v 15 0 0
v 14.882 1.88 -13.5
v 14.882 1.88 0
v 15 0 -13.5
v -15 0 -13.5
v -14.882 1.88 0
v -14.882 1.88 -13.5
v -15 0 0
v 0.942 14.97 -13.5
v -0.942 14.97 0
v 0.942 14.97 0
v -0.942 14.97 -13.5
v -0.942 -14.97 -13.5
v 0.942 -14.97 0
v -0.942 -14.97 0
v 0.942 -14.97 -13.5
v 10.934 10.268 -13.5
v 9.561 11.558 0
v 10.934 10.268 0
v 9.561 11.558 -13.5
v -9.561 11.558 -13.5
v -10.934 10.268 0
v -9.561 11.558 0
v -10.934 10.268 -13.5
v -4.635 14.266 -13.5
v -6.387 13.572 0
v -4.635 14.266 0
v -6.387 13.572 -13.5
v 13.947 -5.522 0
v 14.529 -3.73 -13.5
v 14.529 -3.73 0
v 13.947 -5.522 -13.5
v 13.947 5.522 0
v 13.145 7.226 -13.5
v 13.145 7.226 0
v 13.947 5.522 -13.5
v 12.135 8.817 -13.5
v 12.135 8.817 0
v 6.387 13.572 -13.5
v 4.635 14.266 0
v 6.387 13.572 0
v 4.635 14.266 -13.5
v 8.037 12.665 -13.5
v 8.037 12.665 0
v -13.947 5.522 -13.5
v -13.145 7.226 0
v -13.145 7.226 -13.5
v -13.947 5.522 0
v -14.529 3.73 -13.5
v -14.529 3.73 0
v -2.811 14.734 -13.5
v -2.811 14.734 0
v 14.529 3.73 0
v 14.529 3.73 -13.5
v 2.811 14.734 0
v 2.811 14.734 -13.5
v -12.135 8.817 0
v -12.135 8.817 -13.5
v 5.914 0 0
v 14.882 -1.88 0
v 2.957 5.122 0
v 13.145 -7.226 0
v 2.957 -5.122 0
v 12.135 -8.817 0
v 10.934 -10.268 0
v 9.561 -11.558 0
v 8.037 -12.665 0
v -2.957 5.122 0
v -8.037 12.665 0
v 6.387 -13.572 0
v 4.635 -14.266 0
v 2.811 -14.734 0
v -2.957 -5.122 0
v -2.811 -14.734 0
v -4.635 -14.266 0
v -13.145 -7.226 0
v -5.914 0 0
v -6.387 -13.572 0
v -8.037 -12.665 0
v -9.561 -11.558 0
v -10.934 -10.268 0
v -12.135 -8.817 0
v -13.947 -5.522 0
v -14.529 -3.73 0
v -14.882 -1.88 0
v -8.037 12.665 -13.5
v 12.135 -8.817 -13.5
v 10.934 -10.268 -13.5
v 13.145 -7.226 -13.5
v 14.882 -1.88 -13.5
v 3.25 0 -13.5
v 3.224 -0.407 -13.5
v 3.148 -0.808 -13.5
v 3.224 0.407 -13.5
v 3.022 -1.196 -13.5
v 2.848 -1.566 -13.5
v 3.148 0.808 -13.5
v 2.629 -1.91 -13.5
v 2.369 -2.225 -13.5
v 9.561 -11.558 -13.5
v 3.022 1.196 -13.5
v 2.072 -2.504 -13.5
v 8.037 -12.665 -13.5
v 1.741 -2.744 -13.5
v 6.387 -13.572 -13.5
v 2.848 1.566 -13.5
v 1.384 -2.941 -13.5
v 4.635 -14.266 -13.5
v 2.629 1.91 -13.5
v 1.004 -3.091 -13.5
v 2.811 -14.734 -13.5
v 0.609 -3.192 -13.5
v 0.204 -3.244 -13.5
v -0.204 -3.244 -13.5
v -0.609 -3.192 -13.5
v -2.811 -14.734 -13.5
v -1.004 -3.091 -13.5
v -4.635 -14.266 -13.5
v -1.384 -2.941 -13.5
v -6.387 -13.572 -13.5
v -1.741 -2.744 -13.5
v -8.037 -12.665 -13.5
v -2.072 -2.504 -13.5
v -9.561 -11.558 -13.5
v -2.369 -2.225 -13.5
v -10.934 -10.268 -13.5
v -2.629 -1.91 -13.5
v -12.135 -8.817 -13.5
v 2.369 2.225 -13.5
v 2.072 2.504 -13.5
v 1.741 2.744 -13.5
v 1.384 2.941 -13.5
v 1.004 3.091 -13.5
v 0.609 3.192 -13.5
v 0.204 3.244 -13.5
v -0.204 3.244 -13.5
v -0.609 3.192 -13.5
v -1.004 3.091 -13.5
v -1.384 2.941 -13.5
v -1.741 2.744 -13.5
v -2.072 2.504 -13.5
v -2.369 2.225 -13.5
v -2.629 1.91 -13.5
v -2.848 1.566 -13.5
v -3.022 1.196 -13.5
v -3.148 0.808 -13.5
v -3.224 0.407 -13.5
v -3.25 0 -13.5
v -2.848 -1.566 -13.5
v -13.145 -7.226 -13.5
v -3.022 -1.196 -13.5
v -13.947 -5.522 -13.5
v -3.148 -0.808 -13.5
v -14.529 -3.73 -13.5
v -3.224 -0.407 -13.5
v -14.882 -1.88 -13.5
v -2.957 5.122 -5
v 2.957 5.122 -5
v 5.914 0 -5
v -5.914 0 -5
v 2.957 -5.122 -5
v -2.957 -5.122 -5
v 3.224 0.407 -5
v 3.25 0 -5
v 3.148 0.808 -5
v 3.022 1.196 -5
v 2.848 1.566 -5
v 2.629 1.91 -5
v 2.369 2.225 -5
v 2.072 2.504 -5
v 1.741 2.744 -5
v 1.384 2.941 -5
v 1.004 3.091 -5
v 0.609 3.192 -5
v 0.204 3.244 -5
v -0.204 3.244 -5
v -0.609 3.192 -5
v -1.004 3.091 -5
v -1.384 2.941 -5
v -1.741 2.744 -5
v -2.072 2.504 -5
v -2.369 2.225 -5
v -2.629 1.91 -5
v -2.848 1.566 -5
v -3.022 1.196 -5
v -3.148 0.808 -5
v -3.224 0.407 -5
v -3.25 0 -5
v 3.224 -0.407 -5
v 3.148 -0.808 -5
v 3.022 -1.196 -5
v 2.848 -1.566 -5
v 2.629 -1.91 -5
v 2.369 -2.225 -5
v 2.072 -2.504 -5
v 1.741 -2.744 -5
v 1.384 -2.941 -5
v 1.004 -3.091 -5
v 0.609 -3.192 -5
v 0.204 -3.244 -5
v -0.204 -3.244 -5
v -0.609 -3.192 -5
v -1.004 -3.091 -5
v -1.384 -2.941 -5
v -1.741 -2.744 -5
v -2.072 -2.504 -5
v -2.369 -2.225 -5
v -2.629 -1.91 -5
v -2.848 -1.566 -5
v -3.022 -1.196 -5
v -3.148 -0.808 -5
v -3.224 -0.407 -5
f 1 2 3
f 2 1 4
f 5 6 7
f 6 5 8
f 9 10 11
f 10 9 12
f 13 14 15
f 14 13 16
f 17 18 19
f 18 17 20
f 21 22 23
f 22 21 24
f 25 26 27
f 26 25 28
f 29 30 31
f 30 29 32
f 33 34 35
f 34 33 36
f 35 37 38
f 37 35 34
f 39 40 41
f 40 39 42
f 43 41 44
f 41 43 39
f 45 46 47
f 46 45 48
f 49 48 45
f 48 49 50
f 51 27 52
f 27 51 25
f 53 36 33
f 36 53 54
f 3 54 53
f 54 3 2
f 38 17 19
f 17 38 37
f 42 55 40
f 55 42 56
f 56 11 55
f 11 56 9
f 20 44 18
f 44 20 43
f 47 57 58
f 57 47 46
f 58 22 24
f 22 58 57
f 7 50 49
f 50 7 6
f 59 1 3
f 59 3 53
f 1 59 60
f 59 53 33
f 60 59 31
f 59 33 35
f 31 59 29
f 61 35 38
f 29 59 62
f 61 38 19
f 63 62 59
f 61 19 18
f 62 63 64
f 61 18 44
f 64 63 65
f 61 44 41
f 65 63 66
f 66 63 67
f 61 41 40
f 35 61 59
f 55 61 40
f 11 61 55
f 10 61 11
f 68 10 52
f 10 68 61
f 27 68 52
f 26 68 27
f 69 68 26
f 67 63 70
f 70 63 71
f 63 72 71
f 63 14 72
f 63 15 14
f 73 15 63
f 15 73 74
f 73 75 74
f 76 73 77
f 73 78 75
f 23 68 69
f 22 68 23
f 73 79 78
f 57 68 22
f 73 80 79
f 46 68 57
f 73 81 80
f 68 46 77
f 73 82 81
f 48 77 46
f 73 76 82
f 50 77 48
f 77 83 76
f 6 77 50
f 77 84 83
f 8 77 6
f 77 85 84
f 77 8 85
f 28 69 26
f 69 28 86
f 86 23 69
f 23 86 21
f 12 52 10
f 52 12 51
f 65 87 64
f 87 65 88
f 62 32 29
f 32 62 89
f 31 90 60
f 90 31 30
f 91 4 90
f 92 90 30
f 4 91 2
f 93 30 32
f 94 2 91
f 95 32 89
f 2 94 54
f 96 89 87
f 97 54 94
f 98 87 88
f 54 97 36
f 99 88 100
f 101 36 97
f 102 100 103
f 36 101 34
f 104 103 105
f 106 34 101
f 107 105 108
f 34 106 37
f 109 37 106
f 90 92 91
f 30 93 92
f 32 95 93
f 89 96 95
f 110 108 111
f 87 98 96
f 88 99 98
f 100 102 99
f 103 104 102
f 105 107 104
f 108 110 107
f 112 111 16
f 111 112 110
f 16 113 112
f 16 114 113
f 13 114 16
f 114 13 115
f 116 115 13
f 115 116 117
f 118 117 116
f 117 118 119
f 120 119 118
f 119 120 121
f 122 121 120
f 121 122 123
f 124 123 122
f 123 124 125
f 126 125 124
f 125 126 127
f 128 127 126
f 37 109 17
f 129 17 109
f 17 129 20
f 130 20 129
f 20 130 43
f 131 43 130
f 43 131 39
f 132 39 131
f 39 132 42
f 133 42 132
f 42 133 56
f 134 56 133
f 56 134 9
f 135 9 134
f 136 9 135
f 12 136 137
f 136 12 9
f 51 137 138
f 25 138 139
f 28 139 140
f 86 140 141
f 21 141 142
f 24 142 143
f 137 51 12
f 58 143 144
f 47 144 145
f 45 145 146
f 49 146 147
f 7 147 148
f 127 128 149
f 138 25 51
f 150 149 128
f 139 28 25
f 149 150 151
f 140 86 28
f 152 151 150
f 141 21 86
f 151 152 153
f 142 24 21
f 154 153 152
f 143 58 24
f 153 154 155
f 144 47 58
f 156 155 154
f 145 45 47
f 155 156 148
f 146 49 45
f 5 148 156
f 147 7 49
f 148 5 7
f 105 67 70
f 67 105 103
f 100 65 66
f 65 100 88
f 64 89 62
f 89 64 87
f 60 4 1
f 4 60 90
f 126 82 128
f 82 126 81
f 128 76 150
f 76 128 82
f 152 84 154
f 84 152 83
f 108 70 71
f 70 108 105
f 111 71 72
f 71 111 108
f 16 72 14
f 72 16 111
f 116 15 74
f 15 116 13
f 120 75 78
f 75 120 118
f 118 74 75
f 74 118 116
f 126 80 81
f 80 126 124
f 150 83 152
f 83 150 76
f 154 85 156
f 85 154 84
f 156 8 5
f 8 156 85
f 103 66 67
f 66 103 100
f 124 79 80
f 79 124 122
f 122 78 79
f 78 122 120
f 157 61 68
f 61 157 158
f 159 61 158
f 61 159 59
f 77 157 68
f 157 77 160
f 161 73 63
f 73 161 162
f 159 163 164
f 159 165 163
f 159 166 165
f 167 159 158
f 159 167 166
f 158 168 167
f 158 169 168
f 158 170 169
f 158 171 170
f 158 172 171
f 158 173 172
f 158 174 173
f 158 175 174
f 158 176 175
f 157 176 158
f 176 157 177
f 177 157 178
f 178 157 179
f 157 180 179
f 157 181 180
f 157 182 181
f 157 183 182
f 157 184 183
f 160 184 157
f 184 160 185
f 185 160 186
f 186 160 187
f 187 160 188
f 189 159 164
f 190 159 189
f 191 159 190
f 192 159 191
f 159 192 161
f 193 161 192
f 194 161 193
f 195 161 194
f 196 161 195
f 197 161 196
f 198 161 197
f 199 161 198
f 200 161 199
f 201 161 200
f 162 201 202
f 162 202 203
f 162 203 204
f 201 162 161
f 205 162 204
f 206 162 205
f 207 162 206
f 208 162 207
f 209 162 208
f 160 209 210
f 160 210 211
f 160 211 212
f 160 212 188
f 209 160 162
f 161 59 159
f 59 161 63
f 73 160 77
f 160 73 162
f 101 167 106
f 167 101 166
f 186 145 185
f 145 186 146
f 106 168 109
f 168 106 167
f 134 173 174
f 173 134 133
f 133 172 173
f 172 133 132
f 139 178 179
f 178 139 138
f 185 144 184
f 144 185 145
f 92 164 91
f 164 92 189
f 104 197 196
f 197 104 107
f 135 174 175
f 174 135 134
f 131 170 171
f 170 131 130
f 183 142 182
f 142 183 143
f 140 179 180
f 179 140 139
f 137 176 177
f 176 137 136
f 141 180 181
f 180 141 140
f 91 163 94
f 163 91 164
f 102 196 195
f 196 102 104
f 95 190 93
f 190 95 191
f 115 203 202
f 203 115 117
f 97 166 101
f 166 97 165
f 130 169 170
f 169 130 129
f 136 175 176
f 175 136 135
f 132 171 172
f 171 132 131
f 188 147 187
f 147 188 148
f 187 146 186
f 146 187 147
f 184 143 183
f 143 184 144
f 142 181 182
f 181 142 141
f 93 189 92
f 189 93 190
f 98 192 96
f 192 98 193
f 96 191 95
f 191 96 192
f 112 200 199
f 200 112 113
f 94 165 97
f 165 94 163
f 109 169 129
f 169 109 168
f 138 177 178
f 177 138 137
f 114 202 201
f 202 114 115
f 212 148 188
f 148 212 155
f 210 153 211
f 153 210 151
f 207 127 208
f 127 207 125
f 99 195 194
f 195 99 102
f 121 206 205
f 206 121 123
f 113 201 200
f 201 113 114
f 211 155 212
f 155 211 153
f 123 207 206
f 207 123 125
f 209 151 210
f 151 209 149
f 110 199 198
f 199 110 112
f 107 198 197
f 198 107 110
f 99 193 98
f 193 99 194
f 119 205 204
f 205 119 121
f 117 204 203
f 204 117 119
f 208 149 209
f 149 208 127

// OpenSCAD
$fn = 50;

difference() {
	union() {
		translate(v = [0, 0, -13.5]) {
			cylinder(h = 13.5, r = 15.0);
		}
		#translate(v = [0, 0, -15.0]) {
			cylinder(h = 15, r = 2.875);
		}
	}
	union() {
		translate(v = [0, 0, 0]) {
			rotate(a = [0, 0, 0]) {
				difference() {
					union() {
						translate(v = [0, 0, -5]) {
							linear_extrude(height = 5) {
								polygon(points = [[5.914249999999999, 0.0], [2.957125, 5.1218907443321156], [-2.9571249999999982, 5.1218907443321156], [-5.914249999999999, 7.242867331857232e-16], [-2.9571250000000022, -5.121890744332115], [2.9571249999999956, -5.121890744332118]]);
							}
						}
					}
					union();
				}
			}
		}
		#translate(v = [0, 0, -100.0]) {
			cylinder(h = 200, r = 3.25);
		}
	}
}
